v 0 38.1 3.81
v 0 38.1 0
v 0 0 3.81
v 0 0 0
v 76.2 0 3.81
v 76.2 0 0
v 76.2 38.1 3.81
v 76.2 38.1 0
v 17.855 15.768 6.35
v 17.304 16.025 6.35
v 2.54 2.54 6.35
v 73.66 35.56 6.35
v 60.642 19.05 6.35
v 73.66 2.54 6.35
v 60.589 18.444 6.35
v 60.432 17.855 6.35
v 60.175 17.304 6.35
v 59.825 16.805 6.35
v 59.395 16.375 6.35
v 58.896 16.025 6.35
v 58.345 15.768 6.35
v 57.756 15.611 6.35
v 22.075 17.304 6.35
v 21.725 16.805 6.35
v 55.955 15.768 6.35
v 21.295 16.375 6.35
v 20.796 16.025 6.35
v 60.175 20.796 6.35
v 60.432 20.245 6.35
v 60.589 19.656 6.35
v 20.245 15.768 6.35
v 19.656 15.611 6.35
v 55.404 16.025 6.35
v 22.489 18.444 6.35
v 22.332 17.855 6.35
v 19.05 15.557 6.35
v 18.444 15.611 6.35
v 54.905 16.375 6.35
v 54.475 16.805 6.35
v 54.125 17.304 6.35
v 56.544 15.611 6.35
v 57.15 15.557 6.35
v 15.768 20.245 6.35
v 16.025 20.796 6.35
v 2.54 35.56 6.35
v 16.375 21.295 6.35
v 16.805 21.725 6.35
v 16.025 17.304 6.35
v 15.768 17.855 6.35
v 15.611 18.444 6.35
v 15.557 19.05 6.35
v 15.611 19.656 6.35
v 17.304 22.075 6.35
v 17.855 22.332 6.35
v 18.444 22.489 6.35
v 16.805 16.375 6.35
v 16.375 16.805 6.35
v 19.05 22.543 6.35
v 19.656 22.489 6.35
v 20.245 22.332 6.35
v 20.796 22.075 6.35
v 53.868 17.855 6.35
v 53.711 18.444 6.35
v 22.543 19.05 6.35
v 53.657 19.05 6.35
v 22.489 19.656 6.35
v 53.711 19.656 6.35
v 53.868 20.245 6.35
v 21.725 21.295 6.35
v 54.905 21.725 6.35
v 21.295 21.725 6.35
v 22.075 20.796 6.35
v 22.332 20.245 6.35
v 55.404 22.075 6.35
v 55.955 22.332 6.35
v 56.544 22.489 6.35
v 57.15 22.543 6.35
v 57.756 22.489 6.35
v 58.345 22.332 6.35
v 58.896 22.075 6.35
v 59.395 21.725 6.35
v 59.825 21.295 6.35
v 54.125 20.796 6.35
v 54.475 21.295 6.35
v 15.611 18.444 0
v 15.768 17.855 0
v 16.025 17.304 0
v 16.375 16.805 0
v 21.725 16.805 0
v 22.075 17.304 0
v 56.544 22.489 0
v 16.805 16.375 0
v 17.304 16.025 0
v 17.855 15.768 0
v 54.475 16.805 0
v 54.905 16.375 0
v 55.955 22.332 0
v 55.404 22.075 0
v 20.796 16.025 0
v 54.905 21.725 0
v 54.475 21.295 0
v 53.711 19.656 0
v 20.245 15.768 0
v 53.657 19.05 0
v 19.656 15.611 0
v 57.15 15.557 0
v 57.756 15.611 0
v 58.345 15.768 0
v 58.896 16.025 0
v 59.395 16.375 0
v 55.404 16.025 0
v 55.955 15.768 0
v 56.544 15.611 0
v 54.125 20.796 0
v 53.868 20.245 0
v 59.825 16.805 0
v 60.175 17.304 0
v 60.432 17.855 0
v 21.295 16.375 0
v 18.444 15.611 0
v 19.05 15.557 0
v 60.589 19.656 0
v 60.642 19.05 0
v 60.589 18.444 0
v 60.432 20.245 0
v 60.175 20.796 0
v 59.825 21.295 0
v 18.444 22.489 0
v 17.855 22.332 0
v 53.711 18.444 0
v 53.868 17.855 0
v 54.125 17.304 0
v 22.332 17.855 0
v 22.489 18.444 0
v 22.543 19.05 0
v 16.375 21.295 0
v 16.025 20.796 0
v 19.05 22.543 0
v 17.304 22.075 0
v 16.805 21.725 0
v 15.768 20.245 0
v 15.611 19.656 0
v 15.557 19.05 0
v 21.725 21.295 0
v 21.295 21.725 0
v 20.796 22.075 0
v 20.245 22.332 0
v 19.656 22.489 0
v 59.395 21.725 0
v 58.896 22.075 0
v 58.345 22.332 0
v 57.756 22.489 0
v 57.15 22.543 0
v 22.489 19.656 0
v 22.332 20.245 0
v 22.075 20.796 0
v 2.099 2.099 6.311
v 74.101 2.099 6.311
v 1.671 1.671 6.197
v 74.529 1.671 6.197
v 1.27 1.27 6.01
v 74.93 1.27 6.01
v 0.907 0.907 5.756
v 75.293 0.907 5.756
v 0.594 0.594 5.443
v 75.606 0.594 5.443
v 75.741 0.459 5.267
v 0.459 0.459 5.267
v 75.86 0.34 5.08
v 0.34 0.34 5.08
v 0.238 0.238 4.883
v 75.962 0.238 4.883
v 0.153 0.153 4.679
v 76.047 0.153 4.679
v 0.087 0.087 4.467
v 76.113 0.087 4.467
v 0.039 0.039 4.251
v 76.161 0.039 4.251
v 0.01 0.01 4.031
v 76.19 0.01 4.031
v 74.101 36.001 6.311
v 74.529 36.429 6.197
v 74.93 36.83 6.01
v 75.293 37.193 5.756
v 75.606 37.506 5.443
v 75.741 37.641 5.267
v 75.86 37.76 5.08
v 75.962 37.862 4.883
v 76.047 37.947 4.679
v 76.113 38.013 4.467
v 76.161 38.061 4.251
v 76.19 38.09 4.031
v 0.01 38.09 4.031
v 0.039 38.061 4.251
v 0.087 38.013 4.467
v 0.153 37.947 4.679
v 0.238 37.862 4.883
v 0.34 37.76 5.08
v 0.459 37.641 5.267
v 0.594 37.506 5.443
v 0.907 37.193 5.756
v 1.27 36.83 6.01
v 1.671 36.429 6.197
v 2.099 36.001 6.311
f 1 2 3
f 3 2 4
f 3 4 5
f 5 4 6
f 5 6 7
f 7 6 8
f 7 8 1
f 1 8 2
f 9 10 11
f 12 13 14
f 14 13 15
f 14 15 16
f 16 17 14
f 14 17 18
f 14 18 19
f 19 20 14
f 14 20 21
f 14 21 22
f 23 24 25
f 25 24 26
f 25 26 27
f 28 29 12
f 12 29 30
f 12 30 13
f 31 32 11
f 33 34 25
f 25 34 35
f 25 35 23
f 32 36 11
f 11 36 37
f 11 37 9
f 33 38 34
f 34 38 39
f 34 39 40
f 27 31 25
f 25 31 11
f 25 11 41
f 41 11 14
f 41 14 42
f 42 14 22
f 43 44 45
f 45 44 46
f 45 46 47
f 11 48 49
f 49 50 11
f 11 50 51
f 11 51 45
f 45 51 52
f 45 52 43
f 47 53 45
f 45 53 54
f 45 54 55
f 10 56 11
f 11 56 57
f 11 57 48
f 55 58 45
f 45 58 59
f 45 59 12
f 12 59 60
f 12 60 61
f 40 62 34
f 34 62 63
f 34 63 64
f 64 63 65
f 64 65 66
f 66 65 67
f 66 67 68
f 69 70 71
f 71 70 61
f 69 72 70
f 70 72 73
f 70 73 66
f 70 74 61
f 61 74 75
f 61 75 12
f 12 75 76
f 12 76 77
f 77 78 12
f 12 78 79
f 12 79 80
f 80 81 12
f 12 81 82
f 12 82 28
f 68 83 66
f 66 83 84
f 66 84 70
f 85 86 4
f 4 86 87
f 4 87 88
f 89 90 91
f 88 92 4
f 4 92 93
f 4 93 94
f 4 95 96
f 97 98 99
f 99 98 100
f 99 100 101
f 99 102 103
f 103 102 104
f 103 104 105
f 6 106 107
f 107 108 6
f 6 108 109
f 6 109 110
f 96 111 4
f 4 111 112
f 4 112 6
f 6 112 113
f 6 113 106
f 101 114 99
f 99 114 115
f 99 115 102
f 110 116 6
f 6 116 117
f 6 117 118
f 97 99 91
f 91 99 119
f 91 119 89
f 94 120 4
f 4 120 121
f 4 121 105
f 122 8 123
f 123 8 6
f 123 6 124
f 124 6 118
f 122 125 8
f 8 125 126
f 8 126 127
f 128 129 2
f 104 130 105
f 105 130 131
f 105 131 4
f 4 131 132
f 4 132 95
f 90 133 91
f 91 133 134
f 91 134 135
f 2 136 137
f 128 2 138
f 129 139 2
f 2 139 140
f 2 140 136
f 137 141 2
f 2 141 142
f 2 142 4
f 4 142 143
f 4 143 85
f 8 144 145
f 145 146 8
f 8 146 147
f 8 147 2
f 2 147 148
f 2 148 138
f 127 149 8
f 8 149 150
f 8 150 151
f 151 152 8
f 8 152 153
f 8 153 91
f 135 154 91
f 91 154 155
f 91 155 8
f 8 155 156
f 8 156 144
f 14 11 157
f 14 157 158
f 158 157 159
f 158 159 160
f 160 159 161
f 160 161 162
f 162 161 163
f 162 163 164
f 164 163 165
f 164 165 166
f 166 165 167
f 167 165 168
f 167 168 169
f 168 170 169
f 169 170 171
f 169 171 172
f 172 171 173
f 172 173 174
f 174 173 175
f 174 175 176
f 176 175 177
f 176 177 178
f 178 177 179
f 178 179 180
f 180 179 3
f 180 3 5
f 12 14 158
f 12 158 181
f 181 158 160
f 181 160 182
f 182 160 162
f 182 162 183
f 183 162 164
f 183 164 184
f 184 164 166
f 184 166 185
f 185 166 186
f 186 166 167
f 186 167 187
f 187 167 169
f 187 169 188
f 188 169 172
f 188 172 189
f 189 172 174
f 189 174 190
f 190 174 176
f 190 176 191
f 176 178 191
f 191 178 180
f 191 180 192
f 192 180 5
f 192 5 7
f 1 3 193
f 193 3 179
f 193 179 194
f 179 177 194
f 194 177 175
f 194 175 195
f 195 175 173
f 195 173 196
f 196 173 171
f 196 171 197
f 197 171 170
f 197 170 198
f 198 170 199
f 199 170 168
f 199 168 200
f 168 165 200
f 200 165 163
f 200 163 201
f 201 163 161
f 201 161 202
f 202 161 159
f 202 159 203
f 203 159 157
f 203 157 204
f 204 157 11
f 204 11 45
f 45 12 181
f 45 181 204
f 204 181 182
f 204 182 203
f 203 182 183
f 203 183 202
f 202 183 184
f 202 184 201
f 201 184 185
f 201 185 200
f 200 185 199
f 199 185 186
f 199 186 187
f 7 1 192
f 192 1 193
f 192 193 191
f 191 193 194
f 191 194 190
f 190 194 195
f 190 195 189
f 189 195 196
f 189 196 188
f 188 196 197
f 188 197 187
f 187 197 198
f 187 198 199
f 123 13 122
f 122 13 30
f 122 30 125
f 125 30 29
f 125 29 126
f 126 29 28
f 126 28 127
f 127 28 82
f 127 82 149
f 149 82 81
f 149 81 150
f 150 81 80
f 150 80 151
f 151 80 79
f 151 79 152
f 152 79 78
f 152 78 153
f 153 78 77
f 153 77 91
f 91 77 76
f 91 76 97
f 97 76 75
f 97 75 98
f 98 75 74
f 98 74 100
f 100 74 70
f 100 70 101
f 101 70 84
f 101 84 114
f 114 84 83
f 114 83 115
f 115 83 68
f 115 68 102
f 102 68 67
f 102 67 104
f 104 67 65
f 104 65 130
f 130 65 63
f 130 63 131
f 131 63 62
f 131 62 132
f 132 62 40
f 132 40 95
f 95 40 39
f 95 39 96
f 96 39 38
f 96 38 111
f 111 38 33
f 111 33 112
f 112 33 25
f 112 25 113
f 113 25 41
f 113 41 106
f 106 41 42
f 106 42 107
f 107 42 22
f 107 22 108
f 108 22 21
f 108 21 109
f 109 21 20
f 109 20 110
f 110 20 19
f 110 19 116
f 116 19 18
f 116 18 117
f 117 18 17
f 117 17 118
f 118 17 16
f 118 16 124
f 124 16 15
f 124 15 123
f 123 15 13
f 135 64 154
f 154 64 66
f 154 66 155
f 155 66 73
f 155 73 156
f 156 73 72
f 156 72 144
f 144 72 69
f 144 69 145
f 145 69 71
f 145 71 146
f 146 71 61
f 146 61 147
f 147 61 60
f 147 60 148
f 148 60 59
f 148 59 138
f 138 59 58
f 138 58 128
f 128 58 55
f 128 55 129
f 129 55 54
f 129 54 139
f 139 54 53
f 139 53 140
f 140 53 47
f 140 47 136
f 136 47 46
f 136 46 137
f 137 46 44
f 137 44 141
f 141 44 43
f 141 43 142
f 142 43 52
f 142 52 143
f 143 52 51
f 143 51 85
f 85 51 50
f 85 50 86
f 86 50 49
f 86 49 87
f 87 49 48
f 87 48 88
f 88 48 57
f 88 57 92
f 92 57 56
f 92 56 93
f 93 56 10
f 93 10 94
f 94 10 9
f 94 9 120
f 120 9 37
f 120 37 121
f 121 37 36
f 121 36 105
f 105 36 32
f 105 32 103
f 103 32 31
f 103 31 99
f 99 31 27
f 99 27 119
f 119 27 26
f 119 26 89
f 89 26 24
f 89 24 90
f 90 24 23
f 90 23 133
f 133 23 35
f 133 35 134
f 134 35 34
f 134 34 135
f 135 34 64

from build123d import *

# Parameters (mm, degrees)
SKETCH1_W           = 76.2
SKETCH1_H           = 38.1
BOSS_EXTRUDE1_DEPTH = 6.35
FILLET1_R           = 2.54
SKETCH2_R           = 3.4925
CUT_EXTRUDE1_DEPTH  = 6.35


with BuildPart() as part:
    # Sketch1 → Boss-Extrude1 (new body)
    with BuildSketch(Plane.XY):
        with Locations((38.1, 19.05)):
            Rectangle(SKETCH1_W, SKETCH1_H)
    extrude(amount=BOSS_EXTRUDE1_DEPTH)

    # Fillet1
    fillet1_edges = [part.edges().sort_by_distance(p)[0] for p in [
        (76.2, 19.05, 6.35),
        (38.1, 38.1, 6.35),
        (0, 19.05, 6.35),
        (38.1, 0, 6.35),
    ]]
    fillet(fillet1_edges, radius=FILLET1_R)

    # Sketch2 → Cut-Extrude1 (cut)
    with BuildSketch(Plane.XY.offset(6.35)):
        with Locations((19.05, 19.05)):
            Circle(SKETCH2_R)
        with Locations((57.15, 19.05)):
            Circle(SKETCH2_R)
    extrude(amount=-CUT_EXTRUDE1_DEPTH, mode=Mode.SUBTRACT)


solid = part.part
